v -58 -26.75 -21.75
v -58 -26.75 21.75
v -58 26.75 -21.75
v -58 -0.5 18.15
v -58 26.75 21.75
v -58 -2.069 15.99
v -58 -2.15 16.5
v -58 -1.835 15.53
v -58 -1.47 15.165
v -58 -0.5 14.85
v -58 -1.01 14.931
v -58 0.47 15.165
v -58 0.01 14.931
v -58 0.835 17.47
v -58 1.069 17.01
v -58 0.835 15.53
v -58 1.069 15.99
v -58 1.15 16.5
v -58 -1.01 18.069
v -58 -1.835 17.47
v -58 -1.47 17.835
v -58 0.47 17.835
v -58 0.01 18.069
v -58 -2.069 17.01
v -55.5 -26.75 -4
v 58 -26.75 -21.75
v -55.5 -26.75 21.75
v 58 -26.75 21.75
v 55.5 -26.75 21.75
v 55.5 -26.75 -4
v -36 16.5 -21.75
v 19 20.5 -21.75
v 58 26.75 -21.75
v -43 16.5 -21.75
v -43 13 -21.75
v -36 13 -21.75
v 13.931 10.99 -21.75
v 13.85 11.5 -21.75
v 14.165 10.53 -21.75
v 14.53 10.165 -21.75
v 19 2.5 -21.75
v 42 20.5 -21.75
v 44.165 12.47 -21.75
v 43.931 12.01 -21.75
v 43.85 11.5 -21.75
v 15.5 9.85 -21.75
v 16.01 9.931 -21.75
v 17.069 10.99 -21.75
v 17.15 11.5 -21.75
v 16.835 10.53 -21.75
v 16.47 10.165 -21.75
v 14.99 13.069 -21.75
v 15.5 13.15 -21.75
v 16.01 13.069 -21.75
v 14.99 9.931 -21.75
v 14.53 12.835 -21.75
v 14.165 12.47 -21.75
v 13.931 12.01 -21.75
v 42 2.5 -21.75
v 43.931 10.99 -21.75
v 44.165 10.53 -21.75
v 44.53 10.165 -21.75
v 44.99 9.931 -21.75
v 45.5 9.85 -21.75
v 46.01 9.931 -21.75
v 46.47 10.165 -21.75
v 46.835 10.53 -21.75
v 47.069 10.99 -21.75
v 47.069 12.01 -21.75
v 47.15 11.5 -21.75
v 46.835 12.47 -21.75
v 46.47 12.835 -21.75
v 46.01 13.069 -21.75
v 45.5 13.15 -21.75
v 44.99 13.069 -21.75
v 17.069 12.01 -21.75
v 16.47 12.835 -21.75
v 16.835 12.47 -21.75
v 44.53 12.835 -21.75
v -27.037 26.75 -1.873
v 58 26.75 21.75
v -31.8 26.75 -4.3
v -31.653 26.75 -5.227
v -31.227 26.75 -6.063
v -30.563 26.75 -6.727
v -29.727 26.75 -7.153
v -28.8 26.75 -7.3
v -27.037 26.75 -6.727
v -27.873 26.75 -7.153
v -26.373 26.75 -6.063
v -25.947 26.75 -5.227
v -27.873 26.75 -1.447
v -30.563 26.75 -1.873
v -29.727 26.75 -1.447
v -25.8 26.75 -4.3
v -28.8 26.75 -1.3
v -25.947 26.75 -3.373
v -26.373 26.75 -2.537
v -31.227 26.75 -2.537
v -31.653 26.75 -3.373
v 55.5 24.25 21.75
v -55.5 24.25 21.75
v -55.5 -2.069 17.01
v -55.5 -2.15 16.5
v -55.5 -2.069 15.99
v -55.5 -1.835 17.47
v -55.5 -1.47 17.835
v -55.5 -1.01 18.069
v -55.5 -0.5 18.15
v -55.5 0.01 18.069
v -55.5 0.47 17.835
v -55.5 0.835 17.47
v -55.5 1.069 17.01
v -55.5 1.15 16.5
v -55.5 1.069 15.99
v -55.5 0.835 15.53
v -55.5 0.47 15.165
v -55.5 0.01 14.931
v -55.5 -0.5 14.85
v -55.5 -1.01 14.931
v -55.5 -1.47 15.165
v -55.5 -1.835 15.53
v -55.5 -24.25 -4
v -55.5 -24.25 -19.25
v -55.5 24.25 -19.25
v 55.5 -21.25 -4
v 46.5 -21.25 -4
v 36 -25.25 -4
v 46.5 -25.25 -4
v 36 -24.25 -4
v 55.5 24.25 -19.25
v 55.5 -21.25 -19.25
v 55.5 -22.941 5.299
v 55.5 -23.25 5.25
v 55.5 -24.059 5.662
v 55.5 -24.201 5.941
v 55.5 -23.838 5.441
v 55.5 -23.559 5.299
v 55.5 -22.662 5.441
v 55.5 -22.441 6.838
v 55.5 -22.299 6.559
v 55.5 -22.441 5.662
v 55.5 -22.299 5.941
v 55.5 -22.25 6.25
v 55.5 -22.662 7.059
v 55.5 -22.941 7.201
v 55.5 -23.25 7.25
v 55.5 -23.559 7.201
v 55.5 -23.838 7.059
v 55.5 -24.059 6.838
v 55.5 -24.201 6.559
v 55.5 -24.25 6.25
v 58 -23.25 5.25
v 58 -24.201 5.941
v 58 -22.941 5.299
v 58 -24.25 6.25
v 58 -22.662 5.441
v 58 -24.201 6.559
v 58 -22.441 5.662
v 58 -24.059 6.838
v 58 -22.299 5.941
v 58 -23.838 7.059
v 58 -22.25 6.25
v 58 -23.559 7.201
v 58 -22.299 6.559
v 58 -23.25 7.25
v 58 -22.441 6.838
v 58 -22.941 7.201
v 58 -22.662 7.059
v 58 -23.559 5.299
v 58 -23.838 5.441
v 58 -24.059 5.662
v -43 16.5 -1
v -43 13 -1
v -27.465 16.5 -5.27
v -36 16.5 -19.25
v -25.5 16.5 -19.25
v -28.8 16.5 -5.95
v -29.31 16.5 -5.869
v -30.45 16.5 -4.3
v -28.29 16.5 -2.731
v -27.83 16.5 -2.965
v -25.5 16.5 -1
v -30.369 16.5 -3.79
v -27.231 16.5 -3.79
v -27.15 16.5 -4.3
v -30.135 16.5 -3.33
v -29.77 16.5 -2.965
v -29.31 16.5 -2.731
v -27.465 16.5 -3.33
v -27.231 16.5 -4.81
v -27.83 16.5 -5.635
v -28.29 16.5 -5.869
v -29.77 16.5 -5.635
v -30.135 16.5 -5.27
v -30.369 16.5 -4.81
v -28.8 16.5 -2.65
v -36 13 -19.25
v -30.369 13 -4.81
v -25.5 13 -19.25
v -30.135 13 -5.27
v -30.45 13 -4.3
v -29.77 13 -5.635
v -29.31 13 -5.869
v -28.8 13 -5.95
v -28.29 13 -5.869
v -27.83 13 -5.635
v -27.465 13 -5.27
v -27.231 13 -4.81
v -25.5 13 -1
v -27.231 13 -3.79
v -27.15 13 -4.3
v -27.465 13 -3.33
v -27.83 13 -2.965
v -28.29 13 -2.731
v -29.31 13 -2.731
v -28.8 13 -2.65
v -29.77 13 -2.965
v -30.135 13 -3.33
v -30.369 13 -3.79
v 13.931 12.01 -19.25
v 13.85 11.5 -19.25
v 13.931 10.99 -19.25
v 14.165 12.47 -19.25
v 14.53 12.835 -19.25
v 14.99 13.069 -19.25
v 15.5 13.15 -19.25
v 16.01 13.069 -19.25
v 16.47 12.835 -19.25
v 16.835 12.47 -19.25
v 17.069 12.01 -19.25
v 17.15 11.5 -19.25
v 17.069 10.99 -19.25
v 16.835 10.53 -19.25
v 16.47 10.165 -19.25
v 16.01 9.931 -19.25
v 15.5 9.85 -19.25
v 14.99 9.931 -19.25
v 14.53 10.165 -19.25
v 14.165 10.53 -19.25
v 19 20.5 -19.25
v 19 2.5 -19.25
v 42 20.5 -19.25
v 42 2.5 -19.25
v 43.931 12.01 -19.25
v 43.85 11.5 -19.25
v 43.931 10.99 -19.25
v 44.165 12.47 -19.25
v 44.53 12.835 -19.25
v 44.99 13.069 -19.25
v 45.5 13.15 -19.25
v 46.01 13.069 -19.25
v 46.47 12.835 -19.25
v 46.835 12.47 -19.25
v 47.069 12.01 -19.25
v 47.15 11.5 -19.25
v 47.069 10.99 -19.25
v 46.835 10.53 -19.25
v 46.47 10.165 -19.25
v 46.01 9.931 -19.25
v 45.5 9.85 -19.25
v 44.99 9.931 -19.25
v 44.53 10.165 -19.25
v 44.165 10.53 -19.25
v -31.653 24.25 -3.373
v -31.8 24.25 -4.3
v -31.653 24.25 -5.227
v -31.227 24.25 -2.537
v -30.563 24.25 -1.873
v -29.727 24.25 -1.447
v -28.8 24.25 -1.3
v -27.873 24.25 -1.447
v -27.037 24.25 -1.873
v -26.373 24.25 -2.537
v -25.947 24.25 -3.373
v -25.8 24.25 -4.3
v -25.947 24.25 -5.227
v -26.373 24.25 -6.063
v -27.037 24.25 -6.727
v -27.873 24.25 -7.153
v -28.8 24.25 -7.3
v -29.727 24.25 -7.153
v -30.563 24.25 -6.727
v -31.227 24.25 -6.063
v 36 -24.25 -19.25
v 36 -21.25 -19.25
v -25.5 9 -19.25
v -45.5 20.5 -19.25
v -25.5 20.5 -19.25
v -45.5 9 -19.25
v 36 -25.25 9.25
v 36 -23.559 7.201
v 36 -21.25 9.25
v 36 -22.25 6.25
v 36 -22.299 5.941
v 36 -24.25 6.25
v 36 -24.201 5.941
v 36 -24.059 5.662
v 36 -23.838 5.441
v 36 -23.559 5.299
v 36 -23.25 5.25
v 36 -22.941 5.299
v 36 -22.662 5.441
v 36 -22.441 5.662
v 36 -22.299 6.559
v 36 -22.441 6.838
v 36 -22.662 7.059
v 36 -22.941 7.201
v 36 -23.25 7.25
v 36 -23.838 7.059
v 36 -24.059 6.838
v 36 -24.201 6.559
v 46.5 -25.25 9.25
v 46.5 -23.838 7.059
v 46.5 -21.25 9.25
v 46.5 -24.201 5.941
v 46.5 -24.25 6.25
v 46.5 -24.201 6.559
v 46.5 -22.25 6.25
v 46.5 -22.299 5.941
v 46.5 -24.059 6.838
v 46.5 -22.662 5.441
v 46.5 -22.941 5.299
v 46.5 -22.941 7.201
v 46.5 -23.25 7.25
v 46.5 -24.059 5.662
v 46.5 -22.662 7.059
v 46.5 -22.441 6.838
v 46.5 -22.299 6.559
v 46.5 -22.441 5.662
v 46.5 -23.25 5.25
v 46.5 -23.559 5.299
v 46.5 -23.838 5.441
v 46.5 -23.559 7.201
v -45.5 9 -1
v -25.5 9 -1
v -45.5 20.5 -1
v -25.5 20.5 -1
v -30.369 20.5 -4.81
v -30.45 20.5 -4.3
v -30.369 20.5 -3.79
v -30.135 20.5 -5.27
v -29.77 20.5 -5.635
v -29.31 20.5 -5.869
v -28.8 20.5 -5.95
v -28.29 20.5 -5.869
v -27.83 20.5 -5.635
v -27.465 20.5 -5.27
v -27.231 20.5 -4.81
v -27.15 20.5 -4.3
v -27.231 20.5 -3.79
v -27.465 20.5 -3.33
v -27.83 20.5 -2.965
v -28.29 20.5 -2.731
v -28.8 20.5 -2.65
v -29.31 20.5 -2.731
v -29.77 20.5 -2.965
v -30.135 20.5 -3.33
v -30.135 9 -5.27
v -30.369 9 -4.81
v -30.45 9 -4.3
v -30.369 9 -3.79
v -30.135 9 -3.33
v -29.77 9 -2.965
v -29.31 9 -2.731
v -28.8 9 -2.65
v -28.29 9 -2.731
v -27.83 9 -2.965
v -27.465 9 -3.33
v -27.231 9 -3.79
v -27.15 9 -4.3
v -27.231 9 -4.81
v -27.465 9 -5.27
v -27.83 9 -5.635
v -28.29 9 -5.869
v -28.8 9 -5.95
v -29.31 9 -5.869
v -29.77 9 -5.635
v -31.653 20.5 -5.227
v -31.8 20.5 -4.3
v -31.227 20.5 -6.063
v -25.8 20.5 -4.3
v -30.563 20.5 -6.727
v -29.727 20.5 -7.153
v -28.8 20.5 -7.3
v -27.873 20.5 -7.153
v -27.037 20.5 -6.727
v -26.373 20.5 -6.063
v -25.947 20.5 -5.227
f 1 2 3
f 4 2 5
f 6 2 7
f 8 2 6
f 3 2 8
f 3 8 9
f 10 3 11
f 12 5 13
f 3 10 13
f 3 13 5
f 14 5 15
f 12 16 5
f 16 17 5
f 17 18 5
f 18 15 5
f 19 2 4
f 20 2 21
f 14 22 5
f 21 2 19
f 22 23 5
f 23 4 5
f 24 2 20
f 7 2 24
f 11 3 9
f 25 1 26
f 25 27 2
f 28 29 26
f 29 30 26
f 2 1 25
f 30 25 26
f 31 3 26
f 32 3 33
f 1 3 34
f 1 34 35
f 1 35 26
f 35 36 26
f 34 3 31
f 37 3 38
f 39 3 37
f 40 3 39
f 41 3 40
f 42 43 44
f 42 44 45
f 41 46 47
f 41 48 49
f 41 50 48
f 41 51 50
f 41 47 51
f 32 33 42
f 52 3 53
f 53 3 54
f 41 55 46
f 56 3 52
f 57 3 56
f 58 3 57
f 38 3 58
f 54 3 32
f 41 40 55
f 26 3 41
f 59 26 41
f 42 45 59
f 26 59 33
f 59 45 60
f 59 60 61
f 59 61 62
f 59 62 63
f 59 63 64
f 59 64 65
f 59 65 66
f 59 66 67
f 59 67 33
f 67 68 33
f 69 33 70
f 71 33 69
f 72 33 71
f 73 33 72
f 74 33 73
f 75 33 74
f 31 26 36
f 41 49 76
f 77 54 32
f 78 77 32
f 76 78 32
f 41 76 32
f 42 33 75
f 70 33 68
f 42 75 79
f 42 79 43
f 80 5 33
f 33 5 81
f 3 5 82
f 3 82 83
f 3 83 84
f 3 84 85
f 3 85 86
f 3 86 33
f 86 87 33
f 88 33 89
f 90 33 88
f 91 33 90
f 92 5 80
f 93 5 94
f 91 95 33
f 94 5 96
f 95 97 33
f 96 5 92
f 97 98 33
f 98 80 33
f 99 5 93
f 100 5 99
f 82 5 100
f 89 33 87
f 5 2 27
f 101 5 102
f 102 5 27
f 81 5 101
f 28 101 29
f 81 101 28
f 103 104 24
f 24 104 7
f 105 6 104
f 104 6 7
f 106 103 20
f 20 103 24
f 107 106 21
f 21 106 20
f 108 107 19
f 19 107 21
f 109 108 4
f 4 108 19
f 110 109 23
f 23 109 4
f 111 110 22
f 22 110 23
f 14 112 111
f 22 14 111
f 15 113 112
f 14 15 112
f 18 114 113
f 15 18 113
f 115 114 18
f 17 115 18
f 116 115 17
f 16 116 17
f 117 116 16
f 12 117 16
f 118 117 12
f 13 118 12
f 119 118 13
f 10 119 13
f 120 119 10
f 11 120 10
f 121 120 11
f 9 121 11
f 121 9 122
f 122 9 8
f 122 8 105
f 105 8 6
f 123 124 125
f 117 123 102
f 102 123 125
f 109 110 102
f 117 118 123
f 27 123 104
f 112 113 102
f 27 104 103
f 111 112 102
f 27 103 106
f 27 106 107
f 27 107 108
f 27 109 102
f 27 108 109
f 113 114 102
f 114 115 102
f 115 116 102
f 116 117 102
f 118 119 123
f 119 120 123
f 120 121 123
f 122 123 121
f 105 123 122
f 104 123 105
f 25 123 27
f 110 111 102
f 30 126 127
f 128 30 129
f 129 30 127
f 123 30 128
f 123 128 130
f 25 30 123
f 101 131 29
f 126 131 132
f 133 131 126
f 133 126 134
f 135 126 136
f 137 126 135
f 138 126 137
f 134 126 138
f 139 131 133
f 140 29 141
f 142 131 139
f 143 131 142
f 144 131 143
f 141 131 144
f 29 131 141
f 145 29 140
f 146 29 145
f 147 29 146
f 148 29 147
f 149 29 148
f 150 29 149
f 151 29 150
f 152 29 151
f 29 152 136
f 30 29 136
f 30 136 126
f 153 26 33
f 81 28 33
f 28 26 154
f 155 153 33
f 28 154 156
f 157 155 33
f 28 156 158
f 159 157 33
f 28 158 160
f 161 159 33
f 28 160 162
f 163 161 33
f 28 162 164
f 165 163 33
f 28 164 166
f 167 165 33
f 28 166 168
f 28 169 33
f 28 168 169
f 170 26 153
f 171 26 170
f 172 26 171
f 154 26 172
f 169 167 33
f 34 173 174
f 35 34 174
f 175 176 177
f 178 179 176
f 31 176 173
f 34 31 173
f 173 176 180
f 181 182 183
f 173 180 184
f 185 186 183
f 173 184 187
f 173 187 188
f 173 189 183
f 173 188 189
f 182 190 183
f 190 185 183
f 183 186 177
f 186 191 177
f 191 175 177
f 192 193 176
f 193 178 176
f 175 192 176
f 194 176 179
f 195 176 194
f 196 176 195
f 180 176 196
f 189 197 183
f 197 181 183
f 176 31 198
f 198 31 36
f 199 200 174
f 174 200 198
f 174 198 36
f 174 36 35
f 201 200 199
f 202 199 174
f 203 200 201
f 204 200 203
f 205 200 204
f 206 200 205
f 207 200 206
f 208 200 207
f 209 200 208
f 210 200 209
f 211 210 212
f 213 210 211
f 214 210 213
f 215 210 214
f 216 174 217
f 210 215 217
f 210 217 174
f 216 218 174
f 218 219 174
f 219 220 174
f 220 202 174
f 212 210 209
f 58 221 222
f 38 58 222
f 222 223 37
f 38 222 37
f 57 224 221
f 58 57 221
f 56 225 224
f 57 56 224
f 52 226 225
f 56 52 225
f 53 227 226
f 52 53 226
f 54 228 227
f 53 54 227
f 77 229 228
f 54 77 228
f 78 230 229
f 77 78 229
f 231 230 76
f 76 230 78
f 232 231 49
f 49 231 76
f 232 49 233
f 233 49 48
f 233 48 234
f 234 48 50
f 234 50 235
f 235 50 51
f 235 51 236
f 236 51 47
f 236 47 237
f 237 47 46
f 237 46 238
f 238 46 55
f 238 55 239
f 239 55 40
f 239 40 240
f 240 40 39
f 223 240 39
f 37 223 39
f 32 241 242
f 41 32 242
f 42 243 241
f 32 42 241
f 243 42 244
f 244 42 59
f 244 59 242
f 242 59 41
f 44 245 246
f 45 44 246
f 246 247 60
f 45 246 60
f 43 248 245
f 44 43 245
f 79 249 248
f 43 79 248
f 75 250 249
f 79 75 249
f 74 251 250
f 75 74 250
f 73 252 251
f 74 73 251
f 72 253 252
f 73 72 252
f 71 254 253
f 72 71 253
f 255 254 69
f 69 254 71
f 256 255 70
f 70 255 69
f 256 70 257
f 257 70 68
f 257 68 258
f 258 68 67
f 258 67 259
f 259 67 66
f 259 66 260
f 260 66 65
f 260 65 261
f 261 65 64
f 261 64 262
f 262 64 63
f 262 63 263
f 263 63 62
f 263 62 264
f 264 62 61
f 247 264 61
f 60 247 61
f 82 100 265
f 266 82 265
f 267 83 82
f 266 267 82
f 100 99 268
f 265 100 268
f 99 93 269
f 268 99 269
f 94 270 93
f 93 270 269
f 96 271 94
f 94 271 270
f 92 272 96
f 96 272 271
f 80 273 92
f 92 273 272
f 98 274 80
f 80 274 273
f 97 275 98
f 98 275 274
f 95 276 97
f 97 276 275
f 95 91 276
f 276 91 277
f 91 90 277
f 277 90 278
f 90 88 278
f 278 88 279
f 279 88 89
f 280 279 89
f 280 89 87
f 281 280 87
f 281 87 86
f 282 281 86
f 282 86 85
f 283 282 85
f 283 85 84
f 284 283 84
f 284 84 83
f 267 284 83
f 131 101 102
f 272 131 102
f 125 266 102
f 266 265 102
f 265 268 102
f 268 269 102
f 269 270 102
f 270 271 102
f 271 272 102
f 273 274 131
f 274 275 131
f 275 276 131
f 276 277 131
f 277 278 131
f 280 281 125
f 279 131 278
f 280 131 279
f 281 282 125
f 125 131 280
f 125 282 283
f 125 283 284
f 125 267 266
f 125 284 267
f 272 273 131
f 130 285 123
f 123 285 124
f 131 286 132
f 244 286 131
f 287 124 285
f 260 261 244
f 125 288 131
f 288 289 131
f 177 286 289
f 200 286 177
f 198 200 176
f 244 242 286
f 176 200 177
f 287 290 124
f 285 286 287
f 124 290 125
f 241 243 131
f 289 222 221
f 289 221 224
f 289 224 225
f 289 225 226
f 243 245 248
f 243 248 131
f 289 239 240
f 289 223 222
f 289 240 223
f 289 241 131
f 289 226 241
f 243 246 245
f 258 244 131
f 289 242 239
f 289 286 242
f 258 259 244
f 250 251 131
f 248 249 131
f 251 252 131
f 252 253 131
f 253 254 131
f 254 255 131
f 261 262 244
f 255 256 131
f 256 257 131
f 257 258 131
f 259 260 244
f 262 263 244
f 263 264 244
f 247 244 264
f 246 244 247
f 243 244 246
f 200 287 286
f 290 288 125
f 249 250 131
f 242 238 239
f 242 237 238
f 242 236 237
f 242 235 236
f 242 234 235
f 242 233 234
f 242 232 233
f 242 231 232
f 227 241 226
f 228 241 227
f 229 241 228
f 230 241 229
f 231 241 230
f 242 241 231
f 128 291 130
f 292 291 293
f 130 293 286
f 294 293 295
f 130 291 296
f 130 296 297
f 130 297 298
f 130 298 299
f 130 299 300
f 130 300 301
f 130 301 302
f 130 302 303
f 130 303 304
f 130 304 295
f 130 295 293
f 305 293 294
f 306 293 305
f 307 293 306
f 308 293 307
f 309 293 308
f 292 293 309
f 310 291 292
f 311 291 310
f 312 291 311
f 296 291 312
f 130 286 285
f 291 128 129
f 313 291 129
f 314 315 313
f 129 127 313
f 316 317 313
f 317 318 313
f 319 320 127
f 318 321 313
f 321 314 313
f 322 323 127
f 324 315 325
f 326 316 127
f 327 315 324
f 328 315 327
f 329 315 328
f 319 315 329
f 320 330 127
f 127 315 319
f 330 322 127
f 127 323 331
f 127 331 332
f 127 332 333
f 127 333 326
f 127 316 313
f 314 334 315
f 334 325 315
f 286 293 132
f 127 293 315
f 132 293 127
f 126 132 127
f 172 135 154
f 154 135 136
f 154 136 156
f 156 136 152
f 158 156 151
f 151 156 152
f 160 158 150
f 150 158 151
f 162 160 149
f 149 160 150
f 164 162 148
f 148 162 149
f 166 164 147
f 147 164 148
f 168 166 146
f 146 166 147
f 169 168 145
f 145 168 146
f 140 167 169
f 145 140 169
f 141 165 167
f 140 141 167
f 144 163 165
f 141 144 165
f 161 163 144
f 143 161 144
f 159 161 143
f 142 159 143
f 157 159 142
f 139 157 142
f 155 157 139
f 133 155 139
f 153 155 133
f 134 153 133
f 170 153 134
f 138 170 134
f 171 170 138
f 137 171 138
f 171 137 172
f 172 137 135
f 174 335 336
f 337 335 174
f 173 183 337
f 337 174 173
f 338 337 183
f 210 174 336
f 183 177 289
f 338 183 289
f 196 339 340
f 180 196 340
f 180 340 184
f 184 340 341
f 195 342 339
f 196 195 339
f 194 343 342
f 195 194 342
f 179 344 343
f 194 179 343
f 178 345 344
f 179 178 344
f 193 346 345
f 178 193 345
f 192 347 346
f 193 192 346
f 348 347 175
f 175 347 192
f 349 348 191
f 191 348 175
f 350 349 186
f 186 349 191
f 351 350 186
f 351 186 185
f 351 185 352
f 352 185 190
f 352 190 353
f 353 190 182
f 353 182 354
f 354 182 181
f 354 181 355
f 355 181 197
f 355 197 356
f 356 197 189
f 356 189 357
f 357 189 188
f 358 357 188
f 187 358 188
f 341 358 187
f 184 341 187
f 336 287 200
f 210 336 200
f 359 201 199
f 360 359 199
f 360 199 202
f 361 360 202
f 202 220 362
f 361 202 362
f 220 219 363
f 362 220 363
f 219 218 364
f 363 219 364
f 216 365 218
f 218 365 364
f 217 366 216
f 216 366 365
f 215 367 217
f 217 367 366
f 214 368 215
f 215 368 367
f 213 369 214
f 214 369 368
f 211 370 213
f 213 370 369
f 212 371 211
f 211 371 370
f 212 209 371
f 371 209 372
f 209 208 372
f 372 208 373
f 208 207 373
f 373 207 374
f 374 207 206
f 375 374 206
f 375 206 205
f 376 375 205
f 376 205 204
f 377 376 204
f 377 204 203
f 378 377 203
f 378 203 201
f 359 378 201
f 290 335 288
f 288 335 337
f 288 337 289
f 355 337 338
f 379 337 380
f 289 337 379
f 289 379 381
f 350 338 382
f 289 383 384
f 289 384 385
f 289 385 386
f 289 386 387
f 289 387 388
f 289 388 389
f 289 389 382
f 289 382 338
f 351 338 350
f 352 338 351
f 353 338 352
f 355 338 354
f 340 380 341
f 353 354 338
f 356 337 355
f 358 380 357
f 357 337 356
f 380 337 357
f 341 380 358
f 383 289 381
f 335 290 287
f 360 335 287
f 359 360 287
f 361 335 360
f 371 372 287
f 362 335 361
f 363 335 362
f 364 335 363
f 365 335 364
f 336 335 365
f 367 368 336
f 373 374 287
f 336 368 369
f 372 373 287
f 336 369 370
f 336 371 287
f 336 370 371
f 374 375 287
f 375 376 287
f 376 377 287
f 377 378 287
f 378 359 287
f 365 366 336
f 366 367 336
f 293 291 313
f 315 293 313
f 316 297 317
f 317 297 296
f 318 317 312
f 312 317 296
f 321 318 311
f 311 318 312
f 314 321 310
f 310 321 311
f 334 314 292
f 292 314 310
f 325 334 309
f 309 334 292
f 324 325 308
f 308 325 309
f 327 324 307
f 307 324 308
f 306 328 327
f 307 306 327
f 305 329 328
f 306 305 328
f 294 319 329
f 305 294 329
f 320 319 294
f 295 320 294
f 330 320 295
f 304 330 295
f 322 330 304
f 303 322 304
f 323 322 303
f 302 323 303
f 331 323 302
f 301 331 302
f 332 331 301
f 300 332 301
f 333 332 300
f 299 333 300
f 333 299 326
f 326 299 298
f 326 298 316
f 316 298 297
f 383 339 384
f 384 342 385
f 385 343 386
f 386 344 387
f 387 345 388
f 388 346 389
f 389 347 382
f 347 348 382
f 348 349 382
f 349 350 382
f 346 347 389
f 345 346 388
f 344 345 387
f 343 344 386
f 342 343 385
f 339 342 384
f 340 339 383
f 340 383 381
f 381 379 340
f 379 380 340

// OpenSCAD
/*

	Power supply cover for 12V 20A supply.

	Adrian Bowyer
	April 2012

	Licence: GPL
*/


zi=41;              // internal height
xi=111;            // Internal width
yi=51;              // Internal depth
thick=2.5;        // Wall thickness
screw_y=26;   // Retaining screw coord
screw_z=37;   // Retaining screw coord
screw_d=3.3;  //  Retaining screw diameter
head_d=6;       //  Retaining screw head diameter
fixz=34;           // Retaining cone z coord
catch=9;          // catch prism size
catcht=3.5;     // catch prism thickness
catchup=0.5;     // catch prism offset
catchz=22.25;  // catch z pos
catcha=20;
catchb=4;
catchc=29;
catchgap=9;
c8x=23;           // IEC C8 rectangle size X
c8y=18;           // IEC C8 rectangle size Y
c8holes=30;   //  IEC C8 mounting hole centres
wx = 7;             // Low voltage wire size X
wy = 3.5;         // Low voltage wire size Y
wthick=4;        // Wire clamp thickness
whigh=20;      // Wire clamp height
wlong=20;      // Wire clamp length
basez=14;      // Indentation for bottom sheet



clampxyz=[-xi/2 + wlong/2 + 10, yi/2 - (wy+wthick*2)/2 - 5, -zi/2 + whigh/2 - 0.5];
screwxyz=[-xi/2, yi/2-screw_y, -zi/2 +screw_z];
catchxyz=[(xi-catch)/2,-(yi-catcht)/2 + catchup,-(zi-catch)/2+catchz];
ps_cover();



module ps_cover()
{
	difference()
	{
		union()
		{
			difference()
			{
				cube([xi+2*thick,yi+thick,zi+thick],center=true);
				translate([0,0,thick])
					cube([xi,yi-thick,zi+thick],center=true);
				translate([0,-yi/2,thick+basez])
					cube([xi,5*thick,zi],center=true);
			}
			translate(clampxyz)
				wire_clamp();
			translate(catchxyz+[-5,0,-11.5])
				cube([catcha,catchb,catchc],center=true);
		}
		translate([xi/2 - c8holes/2 - 10, yi/2 - c8y/2 - 5, -zi/2])
			c8_holes();
		translate(clampxyz)
			wire_holes();
		translate(screwxyz)
			rotate([0,90,0])
				cylinder(r=screw_d/2,h=10,center=true,$fn=20);
		translate(catchxyz+[5,0,0])
		{
			rotate([0,90,0])
				cylinder(r=1,h=50,center=true,$fn=20);
			translate([-5,0,-0.25])
				cube([catchgap,catchb+5,20],center=true);
		}
	}
}

module wire_holes()
{
	translate([-wthick,0,0])
		cube([wx,wy,zi*5],center=true);
	translate([wlong/2-screw_d,0,whigh/2-screw_d])
	{
		rotate([90,0,0])
			cylinder(r=screw_d/2,h=50,center=true,$fn=20);
		translate([0,5+(wy+wthick*2)/2,0])
		rotate([90,0,0])
			cylinder(r=head_d/2,h=10,center=true,$fn=20);
	}
}


module wire_clamp()
{
	difference()
	{
		cube([wlong,wy+wthick*2,whigh],center=true);
		translate([wthick,0,0])
			cube([wlong,wy,2*whigh],center=true);
	}
}


module c8_holes()
{
	union()
	{
		cube([c8x,c8y,10*thick],center=true);
		translate([-c8holes/2,0,0])
			cylinder(h=10*thick,r=screw_d/2,center=true,$fn=20);
		translate([c8holes/2,0,0])
			cylinder(h=10*thick,r=screw_d/2,center=true,$fn=20);
	}
}
